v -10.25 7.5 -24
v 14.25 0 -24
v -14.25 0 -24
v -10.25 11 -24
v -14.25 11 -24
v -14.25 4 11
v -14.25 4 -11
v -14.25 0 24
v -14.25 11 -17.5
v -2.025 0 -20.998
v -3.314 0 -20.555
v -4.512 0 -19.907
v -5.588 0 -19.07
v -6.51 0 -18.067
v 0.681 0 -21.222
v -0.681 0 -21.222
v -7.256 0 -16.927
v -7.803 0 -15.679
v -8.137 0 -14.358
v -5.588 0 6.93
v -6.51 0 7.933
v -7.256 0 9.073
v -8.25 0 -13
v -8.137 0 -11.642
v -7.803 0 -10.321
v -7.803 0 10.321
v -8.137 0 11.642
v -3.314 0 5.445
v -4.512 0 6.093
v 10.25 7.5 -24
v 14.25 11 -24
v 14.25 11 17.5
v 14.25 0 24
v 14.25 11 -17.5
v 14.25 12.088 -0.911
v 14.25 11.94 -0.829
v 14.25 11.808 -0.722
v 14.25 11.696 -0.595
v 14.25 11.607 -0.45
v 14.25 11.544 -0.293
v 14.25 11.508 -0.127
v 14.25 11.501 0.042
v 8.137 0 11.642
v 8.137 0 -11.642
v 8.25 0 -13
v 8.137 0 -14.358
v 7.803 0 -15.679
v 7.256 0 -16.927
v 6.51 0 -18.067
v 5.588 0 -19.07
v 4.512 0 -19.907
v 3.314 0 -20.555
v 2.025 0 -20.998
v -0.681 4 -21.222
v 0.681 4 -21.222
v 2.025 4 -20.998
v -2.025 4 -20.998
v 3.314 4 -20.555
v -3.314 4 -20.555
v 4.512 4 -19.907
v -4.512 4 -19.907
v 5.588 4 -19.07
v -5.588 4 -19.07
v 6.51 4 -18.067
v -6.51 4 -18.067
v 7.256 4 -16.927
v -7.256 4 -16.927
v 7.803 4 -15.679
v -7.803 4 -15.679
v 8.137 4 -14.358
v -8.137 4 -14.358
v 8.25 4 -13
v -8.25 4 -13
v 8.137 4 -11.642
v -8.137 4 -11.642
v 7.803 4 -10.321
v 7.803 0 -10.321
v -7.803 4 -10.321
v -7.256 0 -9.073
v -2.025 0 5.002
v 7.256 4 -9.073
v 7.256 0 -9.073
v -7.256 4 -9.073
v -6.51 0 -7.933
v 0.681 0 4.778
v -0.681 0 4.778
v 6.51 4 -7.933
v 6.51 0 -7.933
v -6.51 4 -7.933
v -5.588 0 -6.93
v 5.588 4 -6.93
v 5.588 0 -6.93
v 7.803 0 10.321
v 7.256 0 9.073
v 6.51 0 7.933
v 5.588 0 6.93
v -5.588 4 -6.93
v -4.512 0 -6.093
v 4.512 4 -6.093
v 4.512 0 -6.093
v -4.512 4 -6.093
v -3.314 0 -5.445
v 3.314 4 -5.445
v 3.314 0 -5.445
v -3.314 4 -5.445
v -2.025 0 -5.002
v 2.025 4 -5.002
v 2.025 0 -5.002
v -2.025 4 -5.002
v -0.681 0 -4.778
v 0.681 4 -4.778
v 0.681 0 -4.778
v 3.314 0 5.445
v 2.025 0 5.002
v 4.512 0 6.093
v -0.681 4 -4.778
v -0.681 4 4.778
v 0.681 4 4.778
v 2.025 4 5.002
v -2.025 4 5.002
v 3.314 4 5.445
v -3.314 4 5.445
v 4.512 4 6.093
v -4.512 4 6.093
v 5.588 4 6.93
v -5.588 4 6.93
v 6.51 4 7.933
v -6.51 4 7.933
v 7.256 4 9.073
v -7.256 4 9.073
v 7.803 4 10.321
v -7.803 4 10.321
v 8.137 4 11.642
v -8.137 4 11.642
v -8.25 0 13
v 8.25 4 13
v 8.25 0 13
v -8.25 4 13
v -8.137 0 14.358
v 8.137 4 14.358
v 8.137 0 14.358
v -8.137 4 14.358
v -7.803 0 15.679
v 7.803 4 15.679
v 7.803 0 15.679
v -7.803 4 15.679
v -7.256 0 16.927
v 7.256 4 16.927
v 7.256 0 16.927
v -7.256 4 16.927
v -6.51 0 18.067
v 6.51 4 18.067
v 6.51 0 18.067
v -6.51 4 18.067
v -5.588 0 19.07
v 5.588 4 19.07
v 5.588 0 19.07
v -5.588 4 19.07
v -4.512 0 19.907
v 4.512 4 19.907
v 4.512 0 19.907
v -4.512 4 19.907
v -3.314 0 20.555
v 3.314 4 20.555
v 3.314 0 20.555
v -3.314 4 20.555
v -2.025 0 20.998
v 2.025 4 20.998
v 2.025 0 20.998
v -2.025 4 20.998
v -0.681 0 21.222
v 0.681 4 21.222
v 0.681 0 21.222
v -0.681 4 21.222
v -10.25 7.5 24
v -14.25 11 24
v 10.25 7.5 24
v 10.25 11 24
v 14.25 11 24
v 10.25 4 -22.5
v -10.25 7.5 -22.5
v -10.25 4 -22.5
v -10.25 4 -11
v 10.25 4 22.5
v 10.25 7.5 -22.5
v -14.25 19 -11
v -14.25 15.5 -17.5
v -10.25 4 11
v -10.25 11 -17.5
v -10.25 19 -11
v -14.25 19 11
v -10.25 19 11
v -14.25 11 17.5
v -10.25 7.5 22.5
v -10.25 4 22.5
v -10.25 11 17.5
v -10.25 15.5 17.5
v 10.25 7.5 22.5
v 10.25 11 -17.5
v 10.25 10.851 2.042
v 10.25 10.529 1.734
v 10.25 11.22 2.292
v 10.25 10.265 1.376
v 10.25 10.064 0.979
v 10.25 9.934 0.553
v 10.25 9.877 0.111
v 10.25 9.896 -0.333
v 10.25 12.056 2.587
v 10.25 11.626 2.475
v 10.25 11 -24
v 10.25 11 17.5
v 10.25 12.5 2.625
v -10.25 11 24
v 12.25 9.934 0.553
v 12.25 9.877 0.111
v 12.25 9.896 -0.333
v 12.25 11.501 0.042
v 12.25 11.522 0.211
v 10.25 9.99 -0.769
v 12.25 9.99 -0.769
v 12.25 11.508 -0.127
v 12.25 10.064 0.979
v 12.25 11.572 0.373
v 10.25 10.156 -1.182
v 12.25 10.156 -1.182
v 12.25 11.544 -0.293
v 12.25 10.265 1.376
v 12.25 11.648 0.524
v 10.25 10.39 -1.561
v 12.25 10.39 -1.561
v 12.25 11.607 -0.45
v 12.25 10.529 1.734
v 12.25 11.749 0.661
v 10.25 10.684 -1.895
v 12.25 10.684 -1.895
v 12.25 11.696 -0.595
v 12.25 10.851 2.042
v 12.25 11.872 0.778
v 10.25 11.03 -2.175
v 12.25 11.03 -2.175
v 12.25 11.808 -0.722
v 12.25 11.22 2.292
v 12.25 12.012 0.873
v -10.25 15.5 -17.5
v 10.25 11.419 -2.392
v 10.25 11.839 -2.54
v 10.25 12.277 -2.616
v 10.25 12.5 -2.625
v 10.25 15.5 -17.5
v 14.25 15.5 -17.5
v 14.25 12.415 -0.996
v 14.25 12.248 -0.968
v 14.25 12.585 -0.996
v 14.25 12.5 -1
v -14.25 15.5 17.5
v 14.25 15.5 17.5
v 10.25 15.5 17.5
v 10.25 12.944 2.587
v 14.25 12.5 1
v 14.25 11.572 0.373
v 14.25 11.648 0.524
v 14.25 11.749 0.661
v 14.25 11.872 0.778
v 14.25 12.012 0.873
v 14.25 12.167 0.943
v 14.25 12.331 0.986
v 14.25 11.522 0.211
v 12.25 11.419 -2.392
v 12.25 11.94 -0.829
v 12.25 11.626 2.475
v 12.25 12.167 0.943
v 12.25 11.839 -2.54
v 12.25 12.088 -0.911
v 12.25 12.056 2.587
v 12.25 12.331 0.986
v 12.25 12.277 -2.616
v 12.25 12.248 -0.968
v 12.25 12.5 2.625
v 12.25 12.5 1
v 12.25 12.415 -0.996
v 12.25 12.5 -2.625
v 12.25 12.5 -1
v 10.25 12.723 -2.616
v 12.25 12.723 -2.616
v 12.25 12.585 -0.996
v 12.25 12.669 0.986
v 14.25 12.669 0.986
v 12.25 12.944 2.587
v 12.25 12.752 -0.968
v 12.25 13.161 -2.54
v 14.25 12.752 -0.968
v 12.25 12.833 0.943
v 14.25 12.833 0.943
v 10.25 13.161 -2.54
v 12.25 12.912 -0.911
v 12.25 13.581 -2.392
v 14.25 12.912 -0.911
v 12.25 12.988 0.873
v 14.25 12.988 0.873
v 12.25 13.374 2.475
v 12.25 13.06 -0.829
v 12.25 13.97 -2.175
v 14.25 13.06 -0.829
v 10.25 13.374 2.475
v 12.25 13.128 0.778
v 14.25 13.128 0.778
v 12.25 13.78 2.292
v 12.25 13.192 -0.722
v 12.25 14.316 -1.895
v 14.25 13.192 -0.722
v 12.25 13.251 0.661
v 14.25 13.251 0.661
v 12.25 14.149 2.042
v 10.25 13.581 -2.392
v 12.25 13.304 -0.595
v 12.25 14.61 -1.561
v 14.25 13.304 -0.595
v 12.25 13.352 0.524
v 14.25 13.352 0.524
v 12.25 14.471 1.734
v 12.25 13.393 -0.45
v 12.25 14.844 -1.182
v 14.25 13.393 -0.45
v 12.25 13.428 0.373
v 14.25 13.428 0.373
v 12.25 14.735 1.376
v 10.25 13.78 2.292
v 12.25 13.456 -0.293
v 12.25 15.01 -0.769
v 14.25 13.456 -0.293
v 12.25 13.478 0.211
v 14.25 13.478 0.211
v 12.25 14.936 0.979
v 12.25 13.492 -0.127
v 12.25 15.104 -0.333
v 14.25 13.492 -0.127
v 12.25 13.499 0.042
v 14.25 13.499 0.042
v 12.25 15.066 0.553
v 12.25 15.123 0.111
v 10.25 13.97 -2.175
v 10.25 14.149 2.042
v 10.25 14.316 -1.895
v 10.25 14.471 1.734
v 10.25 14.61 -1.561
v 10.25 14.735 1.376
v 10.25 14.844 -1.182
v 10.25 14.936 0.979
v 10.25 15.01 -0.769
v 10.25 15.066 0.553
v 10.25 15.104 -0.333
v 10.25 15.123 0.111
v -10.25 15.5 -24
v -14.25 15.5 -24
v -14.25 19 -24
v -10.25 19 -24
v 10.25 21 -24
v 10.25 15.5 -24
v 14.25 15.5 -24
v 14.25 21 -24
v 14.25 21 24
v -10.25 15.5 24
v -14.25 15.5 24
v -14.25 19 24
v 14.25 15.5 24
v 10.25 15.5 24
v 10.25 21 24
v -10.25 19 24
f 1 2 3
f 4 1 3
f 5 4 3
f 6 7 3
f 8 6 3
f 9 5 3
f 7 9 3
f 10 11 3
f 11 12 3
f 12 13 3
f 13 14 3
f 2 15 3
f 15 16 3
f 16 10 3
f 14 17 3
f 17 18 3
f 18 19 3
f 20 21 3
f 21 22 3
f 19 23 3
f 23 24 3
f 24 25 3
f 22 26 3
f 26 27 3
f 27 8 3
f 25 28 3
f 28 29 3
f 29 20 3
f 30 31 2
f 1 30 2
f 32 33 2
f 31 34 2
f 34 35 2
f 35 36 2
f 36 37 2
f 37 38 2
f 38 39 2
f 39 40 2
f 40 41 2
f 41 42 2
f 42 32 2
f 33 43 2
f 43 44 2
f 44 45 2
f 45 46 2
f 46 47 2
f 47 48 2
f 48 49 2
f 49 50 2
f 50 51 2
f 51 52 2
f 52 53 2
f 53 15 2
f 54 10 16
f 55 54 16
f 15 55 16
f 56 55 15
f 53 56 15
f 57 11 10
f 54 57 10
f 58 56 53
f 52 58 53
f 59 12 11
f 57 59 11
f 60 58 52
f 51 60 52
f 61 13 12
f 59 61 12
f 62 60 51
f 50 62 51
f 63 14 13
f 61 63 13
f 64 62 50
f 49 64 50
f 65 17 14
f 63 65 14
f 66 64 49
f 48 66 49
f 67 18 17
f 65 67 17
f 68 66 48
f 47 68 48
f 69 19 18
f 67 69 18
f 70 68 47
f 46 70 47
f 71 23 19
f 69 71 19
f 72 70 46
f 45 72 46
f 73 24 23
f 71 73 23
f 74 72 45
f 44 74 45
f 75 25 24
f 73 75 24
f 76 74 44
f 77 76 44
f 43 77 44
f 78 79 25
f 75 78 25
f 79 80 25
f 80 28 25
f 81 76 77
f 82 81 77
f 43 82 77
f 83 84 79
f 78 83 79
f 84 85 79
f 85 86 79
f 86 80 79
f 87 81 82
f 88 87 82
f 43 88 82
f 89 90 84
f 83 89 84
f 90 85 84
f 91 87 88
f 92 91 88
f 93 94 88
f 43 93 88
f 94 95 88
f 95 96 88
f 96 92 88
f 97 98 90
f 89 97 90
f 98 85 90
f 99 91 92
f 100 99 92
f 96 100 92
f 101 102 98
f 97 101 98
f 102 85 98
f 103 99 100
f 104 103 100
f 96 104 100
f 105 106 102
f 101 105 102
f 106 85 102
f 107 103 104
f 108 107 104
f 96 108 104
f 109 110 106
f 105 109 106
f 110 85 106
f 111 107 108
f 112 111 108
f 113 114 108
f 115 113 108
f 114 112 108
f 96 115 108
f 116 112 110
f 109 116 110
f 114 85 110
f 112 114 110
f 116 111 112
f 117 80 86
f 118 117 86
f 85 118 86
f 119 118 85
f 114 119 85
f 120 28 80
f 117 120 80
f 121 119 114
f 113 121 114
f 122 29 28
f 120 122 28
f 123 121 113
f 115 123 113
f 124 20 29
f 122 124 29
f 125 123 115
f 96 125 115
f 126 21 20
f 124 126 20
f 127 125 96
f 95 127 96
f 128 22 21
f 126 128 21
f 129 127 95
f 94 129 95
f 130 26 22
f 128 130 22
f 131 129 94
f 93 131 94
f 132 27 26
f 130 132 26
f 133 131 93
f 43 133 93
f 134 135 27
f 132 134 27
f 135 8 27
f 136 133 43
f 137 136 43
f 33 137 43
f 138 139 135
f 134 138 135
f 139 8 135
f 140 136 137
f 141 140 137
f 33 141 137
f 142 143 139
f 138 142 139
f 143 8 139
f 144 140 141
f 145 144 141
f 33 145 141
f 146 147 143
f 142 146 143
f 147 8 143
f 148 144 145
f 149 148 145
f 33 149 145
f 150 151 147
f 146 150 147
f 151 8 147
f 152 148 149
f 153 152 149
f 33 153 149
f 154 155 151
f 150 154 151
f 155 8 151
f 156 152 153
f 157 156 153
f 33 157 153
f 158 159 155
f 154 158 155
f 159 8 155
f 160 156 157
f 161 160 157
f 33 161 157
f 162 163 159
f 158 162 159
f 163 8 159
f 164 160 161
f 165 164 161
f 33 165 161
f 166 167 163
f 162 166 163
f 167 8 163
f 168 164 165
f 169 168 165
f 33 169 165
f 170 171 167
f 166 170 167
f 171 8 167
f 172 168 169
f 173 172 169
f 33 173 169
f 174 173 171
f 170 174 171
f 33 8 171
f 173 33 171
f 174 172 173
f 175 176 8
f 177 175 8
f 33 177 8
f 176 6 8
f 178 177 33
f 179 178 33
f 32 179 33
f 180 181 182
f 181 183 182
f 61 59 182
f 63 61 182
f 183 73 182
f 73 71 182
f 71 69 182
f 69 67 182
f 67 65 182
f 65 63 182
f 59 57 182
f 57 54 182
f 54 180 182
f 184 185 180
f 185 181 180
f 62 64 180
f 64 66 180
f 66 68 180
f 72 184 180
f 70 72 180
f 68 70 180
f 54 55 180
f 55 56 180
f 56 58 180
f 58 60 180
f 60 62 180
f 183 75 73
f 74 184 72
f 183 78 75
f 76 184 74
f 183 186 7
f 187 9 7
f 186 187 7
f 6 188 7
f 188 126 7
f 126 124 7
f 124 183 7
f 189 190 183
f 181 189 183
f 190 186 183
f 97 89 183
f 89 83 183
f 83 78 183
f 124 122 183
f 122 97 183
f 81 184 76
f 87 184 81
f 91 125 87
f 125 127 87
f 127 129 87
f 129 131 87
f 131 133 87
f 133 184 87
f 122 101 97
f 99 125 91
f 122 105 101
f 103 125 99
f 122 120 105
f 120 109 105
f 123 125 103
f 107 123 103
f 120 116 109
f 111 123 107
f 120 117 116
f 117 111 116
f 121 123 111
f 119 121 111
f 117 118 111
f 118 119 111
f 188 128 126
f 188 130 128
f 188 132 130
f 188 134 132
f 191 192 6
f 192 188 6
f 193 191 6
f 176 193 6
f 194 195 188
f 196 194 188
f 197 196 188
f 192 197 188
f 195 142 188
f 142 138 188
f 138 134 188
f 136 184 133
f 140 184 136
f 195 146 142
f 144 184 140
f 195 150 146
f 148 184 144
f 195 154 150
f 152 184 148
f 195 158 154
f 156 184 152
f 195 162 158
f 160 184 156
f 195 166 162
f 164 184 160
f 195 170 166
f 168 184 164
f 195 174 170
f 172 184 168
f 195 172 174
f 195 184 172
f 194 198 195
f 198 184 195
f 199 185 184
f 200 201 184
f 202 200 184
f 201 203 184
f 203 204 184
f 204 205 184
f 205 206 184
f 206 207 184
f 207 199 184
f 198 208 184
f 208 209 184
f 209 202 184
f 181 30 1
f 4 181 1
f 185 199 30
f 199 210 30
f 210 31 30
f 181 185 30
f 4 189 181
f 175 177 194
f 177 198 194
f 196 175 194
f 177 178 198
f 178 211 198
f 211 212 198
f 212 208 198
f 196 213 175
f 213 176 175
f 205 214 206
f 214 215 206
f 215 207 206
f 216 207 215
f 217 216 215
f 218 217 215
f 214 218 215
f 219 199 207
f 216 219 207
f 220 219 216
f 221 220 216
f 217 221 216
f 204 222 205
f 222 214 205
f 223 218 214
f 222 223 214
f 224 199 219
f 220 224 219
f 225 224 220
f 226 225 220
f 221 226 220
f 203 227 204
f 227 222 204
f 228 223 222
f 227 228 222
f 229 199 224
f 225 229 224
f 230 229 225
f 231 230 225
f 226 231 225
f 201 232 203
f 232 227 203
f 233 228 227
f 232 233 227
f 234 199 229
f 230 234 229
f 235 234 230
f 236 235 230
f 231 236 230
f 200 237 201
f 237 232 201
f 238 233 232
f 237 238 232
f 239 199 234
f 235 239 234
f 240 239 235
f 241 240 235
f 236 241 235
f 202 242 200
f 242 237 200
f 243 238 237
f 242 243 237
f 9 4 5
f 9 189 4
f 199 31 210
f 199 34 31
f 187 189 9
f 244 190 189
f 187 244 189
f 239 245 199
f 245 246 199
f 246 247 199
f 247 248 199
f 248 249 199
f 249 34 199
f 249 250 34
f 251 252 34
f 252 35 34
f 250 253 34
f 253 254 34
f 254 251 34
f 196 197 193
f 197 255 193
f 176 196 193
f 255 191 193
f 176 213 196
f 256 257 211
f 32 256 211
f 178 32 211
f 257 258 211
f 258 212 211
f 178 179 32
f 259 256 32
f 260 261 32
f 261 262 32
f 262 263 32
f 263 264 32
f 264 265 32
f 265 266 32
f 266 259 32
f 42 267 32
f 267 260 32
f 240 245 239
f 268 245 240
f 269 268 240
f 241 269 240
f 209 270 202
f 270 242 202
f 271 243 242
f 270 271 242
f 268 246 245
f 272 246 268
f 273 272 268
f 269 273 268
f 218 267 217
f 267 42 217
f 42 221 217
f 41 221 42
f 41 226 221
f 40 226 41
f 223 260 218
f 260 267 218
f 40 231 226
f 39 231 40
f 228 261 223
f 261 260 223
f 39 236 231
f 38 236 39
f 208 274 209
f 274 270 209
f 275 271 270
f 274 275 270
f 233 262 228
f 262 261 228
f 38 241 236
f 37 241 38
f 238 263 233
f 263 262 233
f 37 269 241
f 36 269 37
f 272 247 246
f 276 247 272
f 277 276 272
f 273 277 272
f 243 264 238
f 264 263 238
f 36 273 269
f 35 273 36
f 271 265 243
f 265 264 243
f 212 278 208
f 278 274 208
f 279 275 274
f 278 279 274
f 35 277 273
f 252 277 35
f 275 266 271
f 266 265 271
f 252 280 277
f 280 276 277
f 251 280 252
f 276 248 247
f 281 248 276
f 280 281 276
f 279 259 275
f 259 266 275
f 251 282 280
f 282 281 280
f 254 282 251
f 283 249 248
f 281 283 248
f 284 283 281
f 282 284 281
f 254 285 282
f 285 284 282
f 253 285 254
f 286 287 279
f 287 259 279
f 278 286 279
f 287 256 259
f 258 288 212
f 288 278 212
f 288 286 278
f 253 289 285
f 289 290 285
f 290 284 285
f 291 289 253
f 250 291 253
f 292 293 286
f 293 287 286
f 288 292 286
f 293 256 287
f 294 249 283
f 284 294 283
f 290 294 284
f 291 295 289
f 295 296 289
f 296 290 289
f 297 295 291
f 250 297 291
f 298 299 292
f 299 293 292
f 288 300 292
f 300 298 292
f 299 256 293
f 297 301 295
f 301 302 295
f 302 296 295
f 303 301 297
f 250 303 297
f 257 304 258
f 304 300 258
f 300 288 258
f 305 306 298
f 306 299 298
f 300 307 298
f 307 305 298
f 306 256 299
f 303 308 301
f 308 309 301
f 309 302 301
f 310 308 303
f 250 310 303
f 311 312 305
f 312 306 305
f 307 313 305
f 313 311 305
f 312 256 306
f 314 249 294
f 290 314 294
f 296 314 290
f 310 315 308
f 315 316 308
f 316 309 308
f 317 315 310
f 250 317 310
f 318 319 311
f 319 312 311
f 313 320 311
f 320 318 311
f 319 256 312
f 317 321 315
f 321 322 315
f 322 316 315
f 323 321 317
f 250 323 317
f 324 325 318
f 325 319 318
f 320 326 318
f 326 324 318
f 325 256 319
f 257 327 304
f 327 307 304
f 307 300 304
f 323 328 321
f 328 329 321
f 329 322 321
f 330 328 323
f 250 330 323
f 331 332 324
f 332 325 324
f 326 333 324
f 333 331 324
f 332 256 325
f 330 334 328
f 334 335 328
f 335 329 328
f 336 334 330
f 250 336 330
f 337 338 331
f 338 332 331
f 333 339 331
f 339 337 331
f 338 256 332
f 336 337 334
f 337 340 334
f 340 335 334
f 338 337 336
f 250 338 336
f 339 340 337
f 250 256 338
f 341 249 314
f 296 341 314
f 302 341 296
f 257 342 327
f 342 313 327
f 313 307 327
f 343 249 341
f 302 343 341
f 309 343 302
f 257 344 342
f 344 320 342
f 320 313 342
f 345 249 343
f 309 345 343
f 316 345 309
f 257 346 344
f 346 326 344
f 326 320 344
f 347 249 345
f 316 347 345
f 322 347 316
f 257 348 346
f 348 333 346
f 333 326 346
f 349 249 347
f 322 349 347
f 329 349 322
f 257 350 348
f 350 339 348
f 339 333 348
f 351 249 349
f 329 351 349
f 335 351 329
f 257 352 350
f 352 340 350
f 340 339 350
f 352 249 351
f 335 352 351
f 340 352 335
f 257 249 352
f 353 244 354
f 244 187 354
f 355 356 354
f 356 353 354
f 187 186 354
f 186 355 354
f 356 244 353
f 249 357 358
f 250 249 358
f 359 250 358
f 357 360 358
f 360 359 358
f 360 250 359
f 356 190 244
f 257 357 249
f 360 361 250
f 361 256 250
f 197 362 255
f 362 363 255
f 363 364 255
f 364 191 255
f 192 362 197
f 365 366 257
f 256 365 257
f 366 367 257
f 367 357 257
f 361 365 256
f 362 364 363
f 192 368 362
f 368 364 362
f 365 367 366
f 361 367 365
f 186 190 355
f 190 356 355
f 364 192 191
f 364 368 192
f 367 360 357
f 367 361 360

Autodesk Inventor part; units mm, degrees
ref_plane "YZ Plane" through (0, 0, 0) normal (1, 0, 0) x (0, 1, 0)
ref_plane "XZ Plane" through (0, 0, 0) normal (0, 1, 0) x (-1, 0, 0)
ref_plane "XY Plane" through (0, 0, 0) normal (0, 0, 1) x (1, 0, 0)
sketch "Sketch1" plane through (0, 0, 0) normal (0, 1, 0) x (-1, 0, 0)
  line L0 (14.25, 24) -> (-14.25, 24)
  line L1 (-14.25, 24) -> (-14.25, -24)
  line L2 (-14.25, -24) -> (14.25, -24)
  line L3 (14.25, -24) -> (14.25, 24)
  line L4 (14.25, 24) -> (-14.25, -24) construction
  line L5 (-14.25, 24) -> (14.25, -24) construction
  point P0 (0, 0)
  dimension "d0" = 28.5
  dimension "d1" = 48
extrude "Extrusion1" add sketch "Sketch1" along normal blind 4
sketch "Sketch2" plane through (0, 4, 0) normal (0, 1, 0) x (1, 0, 0)
  circle A0 centre (0, -13) radius 8.25
  circle A1 centre (0, 13) radius 8.25
  line L0 (14.25, 24) -> (-14.25, 24) projected
  line L1 (-14.25, 24) -> (-14.25, -24) projected
  point P0 (0, 0)
  dimension "d4" = 16.5
  dimension "d5" = 16.5
  dimension "d6" = 26
  dimension "d7" = 11
  dimension "d8" = 14.25
  dimension "d9" = 14.25
extrude "Extrusion2" cut sketch "Sketch2" against normal blind 4
sketch "Sketch3" plane through (0, 4, 0) normal (0, 1, 0) x (1, 0, 0)
  line L0 (14.25, -24) -> (10.25, -24)
  line L1 (10.25, -24) -> (10.25, 24)
  line L2 (10.25, 24) -> (14.25, 24)
  line L3 (14.25, 24) -> (14.25, -24)
  line L4 (14.25, -24) -> (10.25, 24) construction
  line L5 (10.25, -24) -> (14.25, 24) construction
  line L6 (14.25, -24) -> (14.25, 24) projected
  line L7 (14.25, 24) -> (-14.25, 24) projected
  point P0 (0, 0)
  point P1 (12.25, 0)
  dimension "d12" = 48
  dimension "d13" = 4
extrude "Extrusion3" add sketch "Sketch3" along normal blind 17
sketch "Sketch4" plane through (0, 4, 0) normal (0, 1, 0) x (1, 0, 0)
  line L0 (-14.25, -24) -> (-10.25, -24)
  line L1 (-10.25, -24) -> (-10.25, -11)
  line L2 (-10.25, -11) -> (-14.25, -11)
  line L3 (-14.25, -11) -> (-14.25, -24)
  line L4 (-14.25, -24) -> (10.25, -24) projected
  line L5 (-14.25, 24) -> (-14.25, -24) projected
  line L6 (-14.25, 24) -> (-10.25, 24)
  line L7 (-10.25, 24) -> (-10.25, 11)
  line L8 (-10.25, 11) -> (-14.25, 11)
  line L9 (-14.25, 11) -> (-14.25, 24)
  point P0 (0, 0)
  dimension "d16" = 4
  dimension "d17" = 13
  dimension "d18" = 4
  dimension "d19" = 13
extrude "Extrusion4" add sketch "Sketch4" along normal blind 15
sketch "Sketch5" plane through (-14.25, 0, -24) normal (-1, 0, 0) x (0, 0, 1)
  line L0 (41.5, 15.5) -> (48, 15.5)
  line L1 (48, 15.5) -> (48, 11)
  line L2 (48, 11) -> (41.5, 11)
  line L3 (41.5, 11) -> (41.5, 15.5)
  line L4 (35, 4) -> (35, 19) projected
  line L5 (0, 0) -> (48, 0) projected
  line L6 (0, 15.5) -> (6.5, 15.5)
  line L7 (6.5, 15.5) -> (6.5, 11)
  line L8 (6.5, 11) -> (0, 11)
  line L9 (0, 11) -> (0, 15.5)
  line L10 (13, 4) -> (13, 19) projected
  line L11 (48, 0) -> (48, 19) projected
  line L12 (0, 0) -> (0, 19) projected
  point P0 (24, 0)
  dimension "d22" = 6.5
  dimension "d23" = 4.5
  dimension "d24" = 11
  dimension "d25" = 6.5
  dimension "d26" = 4.5
  dimension "d27" = 11
extrude "Extrusion5" cut sketch "Sketch5" against normal blind 4
sketch "Sketch6" plane through (10.25, 4, -24) normal (-1, 0, 0) x (0, 0, 1)
  point P0 (24, -4)
sketch "Sketch7" plane through (10.25, 4, -24) normal (-1, 0, 0) x (0, 0, 1)
  circle A0 centre (24, 8.5) radius 2.625
  line L0 (13, 0) -> (35, 0) projected
  point P0 (24, -4)
  dimension "d30" = 5.25
  dimension "d31" = 8.5
extrude "Extrusion6" cut sketch "Sketch7" against normal blind 2
sketch "Sketch8" plane through (12.25, 12.5, 0) normal (-1, 0, 0) x (0, 0, 1)
  circle A0 centre (0, 0) radius 2.625 projected
  circle A1 centre (0, 0) radius 1
  point P0 (0, -12.5)
  dimension "d34" = 2
extrude "Extrusion7" cut sketch "Sketch8" against normal blind 2 contours A1
sketch "Sketch9" plane through (0, 4, 0) normal (0, 1, 0) x (1, 0, 0)
  line L0 (-10.25, -24) -> (10.25, -24)
  line L1 (10.25, -24) -> (10.25, -22.5)
  line L2 (10.25, -22.5) -> (-10.25, -22.5)
  line L3 (-10.25, -22.5) -> (-10.25, -24)
  line L4 (-10.25, -11) -> (-10.25, -24) projected
  line L5 (-10.25, -24) -> (10.25, -24) projected
  line L6 (-10.25, 22.5) -> (10.25, 22.5)
  line L7 (10.25, 22.5) -> (10.25, 24)
  line L8 (10.25, 24) -> (-10.25, 24)
  line L9 (-10.25, 24) -> (-10.25, 22.5)
  line L10 (-10.25, 24) -> (-10.25, 11) projected
  line L11 (10.25, 24) -> (-10.25, 24) projected
  point P0 (0, 0)
  dimension "d37" = 20.5
  dimension "d38" = 1.5
  dimension "d39" = 1.5
  dimension "d40" = 20.5
extrude "Extrusion8" add sketch "Sketch9" along normal blind 3.5
sketch "Sketch10" plane through (14.25, 0, 24) normal (1, 0, 0) x (0, 0, -1)
  line L0 (48, 15.5) -> (41.5, 15.5)
  line L1 (41.5, 15.5) -> (41.5, 11)
  line L2 (41.5, 11) -> (48, 11)
  line L3 (48, 11) -> (48, 15.5)
  line L4 (41.5, 11) -> (41.5, 15.5) projected
  line L5 (41.5, 15.5) -> (48, 15.5) projected
  line L6 (48, 0) -> (48, 21) projected
  line L7 (0, 0) -> (48, 0) projected
  point P0 (24, 0)
  dimension "d43" = 4.5
  dimension "d44" = 6.5
  dimension "d45" = 11
sketch "Sketch11" plane through (14.25, 0, 24) normal (1, 0, 0) x (0, 0, -1)
  line L0 (6.5, 15.5) -> (0, 15.5)
  line L1 (0, 15.5) -> (0, 11)
  line L2 (0, 11) -> (6.5, 11)
  line L3 (6.5, 11) -> (6.5, 15.5)
  line L4 (0, 0) -> (48, 0) projected
  line L5 (0, 0) -> (0, 21) projected
  point P0 (24, 0)
  dimension "d46" = 6.5
  dimension "d47" = 4.5
  dimension "d48" = 11
extrude "Extrusion9" cut sketch "Sketch10" against normal blind 4
extrude "Extrusion10" cut sketch "Sketch11" against normal blind 4
properties part number "Ultrasound Mount 4"
